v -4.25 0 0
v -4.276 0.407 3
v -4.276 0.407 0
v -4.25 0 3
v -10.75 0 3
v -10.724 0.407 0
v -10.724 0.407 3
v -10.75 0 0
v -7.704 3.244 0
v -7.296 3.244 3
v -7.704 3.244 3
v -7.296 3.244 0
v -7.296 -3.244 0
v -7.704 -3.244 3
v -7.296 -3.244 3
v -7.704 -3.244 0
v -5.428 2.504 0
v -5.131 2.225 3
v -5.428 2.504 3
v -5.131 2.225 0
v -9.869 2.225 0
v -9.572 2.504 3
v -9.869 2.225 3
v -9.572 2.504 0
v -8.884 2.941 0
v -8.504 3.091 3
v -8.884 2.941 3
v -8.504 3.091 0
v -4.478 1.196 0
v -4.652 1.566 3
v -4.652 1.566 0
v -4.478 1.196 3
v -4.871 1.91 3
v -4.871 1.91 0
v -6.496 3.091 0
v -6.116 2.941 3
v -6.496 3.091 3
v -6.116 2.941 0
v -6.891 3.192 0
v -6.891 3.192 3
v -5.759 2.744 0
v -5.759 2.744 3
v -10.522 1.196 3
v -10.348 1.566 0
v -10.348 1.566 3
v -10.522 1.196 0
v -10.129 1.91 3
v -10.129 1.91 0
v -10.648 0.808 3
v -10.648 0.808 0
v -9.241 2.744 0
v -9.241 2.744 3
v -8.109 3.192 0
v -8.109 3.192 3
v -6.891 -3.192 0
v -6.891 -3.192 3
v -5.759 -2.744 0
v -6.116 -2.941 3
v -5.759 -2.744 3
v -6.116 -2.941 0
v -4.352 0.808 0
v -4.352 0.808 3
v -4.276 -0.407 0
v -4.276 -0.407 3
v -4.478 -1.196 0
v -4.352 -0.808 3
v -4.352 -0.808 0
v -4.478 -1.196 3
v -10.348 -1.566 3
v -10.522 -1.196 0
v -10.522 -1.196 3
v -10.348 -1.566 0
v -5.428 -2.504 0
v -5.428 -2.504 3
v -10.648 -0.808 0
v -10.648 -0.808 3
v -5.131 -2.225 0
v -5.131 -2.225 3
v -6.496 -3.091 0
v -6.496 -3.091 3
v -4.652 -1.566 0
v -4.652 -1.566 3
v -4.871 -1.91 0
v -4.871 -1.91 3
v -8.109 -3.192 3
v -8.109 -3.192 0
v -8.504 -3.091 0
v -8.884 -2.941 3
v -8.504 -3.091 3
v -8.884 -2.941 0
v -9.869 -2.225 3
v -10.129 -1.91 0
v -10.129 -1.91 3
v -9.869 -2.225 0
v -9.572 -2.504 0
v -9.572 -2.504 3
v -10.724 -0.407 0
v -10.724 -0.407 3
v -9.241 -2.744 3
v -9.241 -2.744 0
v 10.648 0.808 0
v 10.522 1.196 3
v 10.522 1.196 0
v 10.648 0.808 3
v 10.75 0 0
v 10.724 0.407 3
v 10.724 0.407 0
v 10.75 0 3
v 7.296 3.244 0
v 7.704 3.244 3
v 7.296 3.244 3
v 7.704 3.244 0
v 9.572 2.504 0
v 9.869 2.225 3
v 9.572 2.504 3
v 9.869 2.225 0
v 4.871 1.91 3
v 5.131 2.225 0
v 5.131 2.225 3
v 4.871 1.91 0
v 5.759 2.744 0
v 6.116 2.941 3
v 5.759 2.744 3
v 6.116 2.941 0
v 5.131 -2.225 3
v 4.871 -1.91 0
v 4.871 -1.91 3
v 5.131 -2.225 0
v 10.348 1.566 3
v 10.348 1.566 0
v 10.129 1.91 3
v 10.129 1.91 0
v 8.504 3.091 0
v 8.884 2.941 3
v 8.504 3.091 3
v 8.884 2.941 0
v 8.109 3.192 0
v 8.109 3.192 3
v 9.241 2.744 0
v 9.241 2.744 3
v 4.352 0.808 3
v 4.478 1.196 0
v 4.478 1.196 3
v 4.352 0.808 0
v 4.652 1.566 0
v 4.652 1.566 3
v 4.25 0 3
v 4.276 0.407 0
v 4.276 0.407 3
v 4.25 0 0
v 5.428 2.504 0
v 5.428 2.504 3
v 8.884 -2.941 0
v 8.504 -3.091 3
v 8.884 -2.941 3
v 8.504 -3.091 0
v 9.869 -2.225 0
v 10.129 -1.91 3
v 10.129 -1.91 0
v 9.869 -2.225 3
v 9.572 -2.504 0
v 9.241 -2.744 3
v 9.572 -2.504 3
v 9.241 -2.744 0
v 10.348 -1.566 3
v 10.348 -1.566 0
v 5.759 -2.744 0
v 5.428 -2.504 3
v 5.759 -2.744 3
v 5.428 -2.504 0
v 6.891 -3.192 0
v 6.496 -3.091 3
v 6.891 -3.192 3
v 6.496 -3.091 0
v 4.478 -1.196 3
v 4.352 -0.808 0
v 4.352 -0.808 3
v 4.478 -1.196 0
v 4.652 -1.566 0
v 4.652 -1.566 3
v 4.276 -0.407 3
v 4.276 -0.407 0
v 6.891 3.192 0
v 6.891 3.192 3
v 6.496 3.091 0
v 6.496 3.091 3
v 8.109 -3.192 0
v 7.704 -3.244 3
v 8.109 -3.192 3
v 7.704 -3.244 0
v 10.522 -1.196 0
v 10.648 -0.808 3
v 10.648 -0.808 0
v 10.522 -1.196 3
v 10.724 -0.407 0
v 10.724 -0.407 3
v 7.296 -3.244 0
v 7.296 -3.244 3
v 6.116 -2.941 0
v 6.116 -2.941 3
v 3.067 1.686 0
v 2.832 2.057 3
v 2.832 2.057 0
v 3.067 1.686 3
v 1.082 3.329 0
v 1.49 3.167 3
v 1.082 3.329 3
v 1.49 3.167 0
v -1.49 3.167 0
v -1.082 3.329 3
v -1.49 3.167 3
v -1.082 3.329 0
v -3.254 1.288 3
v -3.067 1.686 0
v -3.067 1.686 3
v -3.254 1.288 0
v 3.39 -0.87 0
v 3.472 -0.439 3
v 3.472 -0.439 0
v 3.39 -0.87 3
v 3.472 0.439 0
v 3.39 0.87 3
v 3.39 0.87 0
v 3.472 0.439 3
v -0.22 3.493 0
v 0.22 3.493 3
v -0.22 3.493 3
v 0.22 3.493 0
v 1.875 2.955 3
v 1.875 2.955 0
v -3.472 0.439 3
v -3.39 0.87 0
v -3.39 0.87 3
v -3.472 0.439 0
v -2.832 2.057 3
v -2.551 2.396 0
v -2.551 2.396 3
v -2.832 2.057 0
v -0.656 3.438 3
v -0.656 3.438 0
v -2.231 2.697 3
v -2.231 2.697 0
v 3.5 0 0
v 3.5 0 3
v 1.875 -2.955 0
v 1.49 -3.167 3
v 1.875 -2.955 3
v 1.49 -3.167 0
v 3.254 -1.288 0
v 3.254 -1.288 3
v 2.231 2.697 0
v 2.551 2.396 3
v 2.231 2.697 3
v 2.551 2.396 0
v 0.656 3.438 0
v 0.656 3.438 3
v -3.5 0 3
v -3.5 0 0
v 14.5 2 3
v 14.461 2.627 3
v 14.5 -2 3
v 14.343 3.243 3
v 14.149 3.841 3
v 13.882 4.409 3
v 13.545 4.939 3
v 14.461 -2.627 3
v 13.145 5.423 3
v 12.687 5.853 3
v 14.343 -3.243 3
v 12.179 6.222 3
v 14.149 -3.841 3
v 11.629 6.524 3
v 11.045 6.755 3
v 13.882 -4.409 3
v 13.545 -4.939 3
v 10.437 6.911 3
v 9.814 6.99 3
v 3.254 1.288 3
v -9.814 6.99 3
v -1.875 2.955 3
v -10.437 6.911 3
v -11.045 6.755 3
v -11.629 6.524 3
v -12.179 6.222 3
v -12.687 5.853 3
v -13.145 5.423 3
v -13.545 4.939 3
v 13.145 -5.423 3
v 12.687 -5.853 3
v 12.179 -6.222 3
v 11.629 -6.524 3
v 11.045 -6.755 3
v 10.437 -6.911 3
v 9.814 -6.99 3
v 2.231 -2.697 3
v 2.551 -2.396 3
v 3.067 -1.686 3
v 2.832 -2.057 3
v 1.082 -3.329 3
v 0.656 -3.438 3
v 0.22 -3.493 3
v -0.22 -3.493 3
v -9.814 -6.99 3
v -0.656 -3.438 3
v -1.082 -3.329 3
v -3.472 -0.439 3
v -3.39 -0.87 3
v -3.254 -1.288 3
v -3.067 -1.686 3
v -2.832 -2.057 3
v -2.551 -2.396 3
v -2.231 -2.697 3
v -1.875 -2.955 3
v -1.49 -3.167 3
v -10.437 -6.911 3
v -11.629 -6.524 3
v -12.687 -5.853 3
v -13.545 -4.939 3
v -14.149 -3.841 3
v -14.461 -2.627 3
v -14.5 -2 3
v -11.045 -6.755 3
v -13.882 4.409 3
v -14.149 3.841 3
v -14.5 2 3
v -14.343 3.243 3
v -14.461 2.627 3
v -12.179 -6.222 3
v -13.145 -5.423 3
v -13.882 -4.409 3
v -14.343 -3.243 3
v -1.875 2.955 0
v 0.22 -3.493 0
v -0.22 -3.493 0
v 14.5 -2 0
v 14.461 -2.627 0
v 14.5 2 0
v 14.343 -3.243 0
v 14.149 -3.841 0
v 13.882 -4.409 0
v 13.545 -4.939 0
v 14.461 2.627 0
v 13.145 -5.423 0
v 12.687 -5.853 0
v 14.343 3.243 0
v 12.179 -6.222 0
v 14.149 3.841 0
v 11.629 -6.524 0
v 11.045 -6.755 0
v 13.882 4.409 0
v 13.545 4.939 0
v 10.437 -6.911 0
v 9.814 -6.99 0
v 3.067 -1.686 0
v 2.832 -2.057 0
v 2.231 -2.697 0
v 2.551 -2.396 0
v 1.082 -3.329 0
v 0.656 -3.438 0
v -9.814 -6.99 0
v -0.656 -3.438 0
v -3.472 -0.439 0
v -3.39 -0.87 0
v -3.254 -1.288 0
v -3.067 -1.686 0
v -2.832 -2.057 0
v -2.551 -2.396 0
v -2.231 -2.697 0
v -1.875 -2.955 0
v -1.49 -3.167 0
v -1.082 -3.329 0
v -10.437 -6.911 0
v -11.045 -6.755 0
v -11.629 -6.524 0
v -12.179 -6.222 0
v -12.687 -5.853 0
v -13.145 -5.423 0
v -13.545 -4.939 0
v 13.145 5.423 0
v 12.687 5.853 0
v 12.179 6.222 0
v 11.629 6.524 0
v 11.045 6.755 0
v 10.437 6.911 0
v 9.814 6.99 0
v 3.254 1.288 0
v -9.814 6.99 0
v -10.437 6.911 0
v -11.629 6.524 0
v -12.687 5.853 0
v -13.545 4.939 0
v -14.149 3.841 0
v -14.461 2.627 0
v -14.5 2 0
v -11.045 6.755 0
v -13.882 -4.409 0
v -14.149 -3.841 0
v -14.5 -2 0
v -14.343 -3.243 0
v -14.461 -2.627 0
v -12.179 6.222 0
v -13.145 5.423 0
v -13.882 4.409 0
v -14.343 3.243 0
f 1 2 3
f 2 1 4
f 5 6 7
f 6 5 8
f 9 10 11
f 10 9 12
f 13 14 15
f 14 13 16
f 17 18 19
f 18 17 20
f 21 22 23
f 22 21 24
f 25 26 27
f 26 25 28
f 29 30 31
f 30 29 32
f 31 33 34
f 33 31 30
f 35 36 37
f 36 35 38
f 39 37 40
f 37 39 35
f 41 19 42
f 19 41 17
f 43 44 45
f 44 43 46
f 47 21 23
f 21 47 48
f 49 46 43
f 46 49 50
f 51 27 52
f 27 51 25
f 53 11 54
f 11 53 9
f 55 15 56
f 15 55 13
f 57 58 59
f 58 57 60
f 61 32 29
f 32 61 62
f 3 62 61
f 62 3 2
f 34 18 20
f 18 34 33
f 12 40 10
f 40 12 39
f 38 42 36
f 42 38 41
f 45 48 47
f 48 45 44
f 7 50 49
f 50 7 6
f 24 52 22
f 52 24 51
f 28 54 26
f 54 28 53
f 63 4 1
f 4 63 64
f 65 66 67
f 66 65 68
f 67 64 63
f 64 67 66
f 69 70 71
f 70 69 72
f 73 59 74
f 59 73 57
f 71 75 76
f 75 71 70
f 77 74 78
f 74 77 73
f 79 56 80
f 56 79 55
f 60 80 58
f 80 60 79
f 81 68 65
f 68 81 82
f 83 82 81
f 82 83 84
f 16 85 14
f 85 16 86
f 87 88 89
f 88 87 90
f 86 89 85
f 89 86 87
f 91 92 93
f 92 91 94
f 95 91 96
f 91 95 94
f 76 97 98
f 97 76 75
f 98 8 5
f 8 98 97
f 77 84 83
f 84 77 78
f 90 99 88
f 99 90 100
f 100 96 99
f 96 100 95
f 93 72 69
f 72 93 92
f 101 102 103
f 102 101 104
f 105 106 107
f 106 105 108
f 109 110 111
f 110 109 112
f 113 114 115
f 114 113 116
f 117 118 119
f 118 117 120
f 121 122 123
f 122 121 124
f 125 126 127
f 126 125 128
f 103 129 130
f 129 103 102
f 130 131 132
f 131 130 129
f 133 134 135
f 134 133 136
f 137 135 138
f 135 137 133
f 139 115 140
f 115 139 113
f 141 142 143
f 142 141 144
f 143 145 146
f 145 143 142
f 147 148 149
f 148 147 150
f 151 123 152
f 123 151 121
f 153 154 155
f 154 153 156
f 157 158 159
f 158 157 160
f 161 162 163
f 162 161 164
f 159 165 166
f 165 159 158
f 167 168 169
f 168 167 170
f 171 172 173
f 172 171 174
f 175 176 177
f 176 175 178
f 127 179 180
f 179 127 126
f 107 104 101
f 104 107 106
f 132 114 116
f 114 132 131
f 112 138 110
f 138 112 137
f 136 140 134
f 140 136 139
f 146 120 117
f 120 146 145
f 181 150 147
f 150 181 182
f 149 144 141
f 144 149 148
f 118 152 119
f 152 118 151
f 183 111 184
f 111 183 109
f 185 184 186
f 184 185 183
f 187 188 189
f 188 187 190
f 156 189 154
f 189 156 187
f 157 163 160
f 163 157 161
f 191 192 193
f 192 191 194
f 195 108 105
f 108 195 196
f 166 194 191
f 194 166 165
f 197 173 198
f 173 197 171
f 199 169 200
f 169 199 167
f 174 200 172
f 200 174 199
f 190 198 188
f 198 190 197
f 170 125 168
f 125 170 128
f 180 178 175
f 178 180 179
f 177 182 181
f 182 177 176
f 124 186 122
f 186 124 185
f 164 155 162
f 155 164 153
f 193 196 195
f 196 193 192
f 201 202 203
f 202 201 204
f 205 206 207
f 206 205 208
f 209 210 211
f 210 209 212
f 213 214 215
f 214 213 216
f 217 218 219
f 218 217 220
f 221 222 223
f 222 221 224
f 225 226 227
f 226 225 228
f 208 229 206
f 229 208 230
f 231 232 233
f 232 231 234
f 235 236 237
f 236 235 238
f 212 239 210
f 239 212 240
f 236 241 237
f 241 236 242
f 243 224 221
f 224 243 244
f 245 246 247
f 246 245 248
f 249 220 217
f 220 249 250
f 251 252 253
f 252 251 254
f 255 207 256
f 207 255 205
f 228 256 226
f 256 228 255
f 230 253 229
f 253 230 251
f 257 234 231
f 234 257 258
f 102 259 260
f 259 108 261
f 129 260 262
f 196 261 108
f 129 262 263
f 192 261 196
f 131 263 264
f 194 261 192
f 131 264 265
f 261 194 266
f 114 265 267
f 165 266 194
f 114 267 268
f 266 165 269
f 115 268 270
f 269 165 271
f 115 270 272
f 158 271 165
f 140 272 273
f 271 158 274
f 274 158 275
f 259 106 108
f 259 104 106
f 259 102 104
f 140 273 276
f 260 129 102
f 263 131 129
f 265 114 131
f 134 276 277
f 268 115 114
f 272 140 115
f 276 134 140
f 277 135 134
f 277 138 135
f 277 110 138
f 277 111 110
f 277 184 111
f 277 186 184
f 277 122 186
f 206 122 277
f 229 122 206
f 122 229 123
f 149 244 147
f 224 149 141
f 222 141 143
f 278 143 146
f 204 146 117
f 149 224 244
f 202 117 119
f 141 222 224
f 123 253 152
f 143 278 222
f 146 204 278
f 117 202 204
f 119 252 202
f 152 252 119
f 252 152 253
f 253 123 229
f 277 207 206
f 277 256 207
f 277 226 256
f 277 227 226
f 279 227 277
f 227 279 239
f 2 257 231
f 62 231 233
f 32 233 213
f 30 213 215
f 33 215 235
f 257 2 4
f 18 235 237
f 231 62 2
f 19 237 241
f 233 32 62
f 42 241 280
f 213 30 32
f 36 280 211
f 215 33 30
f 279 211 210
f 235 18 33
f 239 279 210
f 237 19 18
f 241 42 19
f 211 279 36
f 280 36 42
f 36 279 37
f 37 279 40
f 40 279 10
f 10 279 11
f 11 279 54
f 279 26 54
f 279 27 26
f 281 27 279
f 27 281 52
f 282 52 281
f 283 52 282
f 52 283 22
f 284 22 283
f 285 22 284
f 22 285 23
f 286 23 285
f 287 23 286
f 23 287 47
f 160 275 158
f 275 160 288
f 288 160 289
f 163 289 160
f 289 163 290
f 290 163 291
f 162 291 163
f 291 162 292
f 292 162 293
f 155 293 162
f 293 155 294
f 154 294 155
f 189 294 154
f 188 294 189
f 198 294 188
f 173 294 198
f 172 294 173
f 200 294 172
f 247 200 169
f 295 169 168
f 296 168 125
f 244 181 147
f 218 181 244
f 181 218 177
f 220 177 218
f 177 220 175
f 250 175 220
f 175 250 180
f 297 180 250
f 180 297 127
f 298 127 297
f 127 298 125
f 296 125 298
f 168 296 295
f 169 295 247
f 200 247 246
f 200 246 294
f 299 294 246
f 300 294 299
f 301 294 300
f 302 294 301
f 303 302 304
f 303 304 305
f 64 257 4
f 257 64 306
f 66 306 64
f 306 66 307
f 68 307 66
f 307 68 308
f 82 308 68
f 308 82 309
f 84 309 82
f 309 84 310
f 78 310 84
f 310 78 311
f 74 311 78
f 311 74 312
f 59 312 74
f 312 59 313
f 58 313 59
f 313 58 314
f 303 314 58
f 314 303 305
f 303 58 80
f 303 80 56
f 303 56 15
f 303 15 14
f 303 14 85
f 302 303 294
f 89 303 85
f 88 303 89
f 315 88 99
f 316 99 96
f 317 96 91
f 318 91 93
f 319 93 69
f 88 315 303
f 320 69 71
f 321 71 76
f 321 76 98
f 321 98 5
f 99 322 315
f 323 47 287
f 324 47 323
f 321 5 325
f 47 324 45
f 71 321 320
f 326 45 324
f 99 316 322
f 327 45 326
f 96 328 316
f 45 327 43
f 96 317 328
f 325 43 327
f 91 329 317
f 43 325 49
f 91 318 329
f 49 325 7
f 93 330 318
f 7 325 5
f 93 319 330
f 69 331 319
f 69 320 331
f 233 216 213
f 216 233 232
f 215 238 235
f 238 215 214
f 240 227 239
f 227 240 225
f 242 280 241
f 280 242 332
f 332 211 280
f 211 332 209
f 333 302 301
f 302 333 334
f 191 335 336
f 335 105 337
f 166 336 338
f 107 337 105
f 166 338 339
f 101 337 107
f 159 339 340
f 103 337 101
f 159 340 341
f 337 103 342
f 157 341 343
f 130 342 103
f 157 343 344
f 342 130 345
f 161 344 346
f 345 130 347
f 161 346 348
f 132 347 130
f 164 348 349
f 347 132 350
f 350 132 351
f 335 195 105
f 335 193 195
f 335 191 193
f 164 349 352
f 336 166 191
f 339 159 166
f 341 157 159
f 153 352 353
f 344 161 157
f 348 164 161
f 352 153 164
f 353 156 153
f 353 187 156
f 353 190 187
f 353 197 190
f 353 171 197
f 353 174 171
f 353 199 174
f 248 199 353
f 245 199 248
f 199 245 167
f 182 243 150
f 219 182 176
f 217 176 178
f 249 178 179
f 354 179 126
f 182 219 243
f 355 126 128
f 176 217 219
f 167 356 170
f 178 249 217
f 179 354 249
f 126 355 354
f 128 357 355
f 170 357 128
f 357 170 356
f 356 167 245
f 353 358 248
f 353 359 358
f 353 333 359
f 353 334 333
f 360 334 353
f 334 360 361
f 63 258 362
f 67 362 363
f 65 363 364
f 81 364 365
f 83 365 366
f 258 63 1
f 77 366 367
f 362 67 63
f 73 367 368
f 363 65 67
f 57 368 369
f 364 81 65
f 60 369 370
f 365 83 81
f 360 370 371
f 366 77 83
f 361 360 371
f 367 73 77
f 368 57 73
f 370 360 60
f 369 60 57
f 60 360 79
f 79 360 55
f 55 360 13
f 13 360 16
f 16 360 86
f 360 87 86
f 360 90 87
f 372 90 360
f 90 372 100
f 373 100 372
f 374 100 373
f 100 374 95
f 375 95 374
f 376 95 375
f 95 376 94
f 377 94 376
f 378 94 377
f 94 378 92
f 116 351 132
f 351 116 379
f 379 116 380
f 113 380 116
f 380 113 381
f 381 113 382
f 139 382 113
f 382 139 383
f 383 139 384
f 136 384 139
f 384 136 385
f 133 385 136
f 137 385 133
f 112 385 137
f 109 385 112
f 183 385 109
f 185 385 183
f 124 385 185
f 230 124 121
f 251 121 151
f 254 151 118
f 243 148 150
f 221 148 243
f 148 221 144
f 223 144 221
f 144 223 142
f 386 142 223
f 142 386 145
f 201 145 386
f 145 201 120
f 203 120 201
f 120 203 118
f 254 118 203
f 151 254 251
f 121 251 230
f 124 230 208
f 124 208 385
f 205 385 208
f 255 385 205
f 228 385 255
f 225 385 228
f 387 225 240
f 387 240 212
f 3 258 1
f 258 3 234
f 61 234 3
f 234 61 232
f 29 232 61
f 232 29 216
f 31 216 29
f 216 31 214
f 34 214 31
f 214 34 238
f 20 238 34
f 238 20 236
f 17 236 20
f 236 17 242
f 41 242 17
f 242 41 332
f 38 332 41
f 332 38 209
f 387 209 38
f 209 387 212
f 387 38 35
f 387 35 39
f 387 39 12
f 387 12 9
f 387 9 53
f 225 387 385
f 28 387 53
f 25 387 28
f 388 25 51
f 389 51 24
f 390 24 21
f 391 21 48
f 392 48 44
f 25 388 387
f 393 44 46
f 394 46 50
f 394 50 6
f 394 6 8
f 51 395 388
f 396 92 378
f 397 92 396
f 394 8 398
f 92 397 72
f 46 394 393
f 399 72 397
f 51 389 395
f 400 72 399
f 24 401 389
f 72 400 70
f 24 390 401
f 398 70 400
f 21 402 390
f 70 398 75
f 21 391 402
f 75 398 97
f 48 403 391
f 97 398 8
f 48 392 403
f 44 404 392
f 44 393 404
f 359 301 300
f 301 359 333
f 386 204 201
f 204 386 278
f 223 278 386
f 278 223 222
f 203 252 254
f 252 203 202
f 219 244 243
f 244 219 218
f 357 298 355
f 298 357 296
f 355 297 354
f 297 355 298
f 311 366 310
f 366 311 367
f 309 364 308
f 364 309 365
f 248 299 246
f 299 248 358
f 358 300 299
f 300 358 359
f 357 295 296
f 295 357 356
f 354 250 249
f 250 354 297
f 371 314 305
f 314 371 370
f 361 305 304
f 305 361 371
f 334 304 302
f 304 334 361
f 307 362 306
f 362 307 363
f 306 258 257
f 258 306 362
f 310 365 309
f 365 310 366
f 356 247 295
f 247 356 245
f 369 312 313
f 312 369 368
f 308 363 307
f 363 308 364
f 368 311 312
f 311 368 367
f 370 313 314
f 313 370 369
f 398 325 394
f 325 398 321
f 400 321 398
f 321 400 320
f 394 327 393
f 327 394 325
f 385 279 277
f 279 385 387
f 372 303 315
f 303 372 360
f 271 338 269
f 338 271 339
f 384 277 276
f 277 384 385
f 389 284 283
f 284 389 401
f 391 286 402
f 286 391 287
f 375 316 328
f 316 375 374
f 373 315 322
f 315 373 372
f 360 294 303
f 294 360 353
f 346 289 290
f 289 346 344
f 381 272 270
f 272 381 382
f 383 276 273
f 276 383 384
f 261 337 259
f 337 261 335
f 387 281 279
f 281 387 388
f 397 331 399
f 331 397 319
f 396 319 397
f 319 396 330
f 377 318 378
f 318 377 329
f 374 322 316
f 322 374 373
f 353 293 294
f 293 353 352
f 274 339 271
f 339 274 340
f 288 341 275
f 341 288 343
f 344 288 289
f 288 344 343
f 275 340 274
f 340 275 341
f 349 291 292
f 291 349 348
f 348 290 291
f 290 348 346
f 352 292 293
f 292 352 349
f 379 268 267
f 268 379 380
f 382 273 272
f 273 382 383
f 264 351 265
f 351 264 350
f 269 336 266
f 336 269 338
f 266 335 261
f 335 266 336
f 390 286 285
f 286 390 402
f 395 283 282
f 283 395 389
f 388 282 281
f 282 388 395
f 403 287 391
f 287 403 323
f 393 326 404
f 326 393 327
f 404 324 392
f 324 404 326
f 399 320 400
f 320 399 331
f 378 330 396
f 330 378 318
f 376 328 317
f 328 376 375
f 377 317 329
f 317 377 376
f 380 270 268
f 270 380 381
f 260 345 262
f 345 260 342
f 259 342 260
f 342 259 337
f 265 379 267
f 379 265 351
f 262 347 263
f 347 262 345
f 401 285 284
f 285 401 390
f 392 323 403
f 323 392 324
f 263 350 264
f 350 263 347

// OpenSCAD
$fn = 50;


difference() {
	union() {
		hull() {
			translate(v = [-9.5000000000, 2.0000000000, 0]) {
				cylinder(h = 3, r = 5);
			}
			translate(v = [9.5000000000, 2.0000000000, 0]) {
				cylinder(h = 3, r = 5);
			}
			translate(v = [-9.5000000000, -2.0000000000, 0]) {
				cylinder(h = 3, r = 5);
			}
			translate(v = [9.5000000000, -2.0000000000, 0]) {
				cylinder(h = 3, r = 5);
			}
		}
	}
	union() {
		#translate(v = [-7.5000000000, 0.0000000000, 0]) {
			cylinder(h = 3, r = 3.2500000000);
		}
		#translate(v = [7.5000000000, 0.0000000000, 0]) {
			cylinder(h = 3, r = 3.2500000000);
		}
		#translate(v = [-7.5000000000, 0.0000000000, -100.0000000000]) {
			cylinder(h = 200, r = 3.2500000000);
		}
		#translate(v = [-7.5000000000, 0.0000000000, -100.0000000000]) {
			cylinder(h = 200, r = 3.2500000000);
		}
		#translate(v = [7.5000000000, 0.0000000000, -100.0000000000]) {
			cylinder(h = 200, r = 3.2500000000);
		}
		#translate(v = [7.5000000000, 0.0000000000, -100.0000000000]) {
			cylinder(h = 200, r = 3.2500000000);
		}
		#translate(v = [-7.5000000000, 0.0000000000, 0]) {
			cylinder(h = 3, r = 1.8000000000);
		}
		#translate(v = [7.5000000000, 0.0000000000, 0]) {
			cylinder(h = 3, r = 1.8000000000);
		}
		#translate(v = [-7.5000000000, 0.0000000000, 0]) {
			cylinder(h = 3, r = 1.8000000000);
		}
		#translate(v = [7.5000000000, 0.0000000000, 0]) {
			cylinder(h = 3, r = 1.8000000000);
		}
		#translate(v = [-7.5000000000, 0.0000000000, 0]) {
			cylinder(h = 3, r = 1.8000000000);
		}
		#translate(v = [7.5000000000, 0.0000000000, 0]) {
			cylinder(h = 3, r = 1.8000000000);
		}
		#cylinder(h = 3, r = 3.5000000000);
	}
}
